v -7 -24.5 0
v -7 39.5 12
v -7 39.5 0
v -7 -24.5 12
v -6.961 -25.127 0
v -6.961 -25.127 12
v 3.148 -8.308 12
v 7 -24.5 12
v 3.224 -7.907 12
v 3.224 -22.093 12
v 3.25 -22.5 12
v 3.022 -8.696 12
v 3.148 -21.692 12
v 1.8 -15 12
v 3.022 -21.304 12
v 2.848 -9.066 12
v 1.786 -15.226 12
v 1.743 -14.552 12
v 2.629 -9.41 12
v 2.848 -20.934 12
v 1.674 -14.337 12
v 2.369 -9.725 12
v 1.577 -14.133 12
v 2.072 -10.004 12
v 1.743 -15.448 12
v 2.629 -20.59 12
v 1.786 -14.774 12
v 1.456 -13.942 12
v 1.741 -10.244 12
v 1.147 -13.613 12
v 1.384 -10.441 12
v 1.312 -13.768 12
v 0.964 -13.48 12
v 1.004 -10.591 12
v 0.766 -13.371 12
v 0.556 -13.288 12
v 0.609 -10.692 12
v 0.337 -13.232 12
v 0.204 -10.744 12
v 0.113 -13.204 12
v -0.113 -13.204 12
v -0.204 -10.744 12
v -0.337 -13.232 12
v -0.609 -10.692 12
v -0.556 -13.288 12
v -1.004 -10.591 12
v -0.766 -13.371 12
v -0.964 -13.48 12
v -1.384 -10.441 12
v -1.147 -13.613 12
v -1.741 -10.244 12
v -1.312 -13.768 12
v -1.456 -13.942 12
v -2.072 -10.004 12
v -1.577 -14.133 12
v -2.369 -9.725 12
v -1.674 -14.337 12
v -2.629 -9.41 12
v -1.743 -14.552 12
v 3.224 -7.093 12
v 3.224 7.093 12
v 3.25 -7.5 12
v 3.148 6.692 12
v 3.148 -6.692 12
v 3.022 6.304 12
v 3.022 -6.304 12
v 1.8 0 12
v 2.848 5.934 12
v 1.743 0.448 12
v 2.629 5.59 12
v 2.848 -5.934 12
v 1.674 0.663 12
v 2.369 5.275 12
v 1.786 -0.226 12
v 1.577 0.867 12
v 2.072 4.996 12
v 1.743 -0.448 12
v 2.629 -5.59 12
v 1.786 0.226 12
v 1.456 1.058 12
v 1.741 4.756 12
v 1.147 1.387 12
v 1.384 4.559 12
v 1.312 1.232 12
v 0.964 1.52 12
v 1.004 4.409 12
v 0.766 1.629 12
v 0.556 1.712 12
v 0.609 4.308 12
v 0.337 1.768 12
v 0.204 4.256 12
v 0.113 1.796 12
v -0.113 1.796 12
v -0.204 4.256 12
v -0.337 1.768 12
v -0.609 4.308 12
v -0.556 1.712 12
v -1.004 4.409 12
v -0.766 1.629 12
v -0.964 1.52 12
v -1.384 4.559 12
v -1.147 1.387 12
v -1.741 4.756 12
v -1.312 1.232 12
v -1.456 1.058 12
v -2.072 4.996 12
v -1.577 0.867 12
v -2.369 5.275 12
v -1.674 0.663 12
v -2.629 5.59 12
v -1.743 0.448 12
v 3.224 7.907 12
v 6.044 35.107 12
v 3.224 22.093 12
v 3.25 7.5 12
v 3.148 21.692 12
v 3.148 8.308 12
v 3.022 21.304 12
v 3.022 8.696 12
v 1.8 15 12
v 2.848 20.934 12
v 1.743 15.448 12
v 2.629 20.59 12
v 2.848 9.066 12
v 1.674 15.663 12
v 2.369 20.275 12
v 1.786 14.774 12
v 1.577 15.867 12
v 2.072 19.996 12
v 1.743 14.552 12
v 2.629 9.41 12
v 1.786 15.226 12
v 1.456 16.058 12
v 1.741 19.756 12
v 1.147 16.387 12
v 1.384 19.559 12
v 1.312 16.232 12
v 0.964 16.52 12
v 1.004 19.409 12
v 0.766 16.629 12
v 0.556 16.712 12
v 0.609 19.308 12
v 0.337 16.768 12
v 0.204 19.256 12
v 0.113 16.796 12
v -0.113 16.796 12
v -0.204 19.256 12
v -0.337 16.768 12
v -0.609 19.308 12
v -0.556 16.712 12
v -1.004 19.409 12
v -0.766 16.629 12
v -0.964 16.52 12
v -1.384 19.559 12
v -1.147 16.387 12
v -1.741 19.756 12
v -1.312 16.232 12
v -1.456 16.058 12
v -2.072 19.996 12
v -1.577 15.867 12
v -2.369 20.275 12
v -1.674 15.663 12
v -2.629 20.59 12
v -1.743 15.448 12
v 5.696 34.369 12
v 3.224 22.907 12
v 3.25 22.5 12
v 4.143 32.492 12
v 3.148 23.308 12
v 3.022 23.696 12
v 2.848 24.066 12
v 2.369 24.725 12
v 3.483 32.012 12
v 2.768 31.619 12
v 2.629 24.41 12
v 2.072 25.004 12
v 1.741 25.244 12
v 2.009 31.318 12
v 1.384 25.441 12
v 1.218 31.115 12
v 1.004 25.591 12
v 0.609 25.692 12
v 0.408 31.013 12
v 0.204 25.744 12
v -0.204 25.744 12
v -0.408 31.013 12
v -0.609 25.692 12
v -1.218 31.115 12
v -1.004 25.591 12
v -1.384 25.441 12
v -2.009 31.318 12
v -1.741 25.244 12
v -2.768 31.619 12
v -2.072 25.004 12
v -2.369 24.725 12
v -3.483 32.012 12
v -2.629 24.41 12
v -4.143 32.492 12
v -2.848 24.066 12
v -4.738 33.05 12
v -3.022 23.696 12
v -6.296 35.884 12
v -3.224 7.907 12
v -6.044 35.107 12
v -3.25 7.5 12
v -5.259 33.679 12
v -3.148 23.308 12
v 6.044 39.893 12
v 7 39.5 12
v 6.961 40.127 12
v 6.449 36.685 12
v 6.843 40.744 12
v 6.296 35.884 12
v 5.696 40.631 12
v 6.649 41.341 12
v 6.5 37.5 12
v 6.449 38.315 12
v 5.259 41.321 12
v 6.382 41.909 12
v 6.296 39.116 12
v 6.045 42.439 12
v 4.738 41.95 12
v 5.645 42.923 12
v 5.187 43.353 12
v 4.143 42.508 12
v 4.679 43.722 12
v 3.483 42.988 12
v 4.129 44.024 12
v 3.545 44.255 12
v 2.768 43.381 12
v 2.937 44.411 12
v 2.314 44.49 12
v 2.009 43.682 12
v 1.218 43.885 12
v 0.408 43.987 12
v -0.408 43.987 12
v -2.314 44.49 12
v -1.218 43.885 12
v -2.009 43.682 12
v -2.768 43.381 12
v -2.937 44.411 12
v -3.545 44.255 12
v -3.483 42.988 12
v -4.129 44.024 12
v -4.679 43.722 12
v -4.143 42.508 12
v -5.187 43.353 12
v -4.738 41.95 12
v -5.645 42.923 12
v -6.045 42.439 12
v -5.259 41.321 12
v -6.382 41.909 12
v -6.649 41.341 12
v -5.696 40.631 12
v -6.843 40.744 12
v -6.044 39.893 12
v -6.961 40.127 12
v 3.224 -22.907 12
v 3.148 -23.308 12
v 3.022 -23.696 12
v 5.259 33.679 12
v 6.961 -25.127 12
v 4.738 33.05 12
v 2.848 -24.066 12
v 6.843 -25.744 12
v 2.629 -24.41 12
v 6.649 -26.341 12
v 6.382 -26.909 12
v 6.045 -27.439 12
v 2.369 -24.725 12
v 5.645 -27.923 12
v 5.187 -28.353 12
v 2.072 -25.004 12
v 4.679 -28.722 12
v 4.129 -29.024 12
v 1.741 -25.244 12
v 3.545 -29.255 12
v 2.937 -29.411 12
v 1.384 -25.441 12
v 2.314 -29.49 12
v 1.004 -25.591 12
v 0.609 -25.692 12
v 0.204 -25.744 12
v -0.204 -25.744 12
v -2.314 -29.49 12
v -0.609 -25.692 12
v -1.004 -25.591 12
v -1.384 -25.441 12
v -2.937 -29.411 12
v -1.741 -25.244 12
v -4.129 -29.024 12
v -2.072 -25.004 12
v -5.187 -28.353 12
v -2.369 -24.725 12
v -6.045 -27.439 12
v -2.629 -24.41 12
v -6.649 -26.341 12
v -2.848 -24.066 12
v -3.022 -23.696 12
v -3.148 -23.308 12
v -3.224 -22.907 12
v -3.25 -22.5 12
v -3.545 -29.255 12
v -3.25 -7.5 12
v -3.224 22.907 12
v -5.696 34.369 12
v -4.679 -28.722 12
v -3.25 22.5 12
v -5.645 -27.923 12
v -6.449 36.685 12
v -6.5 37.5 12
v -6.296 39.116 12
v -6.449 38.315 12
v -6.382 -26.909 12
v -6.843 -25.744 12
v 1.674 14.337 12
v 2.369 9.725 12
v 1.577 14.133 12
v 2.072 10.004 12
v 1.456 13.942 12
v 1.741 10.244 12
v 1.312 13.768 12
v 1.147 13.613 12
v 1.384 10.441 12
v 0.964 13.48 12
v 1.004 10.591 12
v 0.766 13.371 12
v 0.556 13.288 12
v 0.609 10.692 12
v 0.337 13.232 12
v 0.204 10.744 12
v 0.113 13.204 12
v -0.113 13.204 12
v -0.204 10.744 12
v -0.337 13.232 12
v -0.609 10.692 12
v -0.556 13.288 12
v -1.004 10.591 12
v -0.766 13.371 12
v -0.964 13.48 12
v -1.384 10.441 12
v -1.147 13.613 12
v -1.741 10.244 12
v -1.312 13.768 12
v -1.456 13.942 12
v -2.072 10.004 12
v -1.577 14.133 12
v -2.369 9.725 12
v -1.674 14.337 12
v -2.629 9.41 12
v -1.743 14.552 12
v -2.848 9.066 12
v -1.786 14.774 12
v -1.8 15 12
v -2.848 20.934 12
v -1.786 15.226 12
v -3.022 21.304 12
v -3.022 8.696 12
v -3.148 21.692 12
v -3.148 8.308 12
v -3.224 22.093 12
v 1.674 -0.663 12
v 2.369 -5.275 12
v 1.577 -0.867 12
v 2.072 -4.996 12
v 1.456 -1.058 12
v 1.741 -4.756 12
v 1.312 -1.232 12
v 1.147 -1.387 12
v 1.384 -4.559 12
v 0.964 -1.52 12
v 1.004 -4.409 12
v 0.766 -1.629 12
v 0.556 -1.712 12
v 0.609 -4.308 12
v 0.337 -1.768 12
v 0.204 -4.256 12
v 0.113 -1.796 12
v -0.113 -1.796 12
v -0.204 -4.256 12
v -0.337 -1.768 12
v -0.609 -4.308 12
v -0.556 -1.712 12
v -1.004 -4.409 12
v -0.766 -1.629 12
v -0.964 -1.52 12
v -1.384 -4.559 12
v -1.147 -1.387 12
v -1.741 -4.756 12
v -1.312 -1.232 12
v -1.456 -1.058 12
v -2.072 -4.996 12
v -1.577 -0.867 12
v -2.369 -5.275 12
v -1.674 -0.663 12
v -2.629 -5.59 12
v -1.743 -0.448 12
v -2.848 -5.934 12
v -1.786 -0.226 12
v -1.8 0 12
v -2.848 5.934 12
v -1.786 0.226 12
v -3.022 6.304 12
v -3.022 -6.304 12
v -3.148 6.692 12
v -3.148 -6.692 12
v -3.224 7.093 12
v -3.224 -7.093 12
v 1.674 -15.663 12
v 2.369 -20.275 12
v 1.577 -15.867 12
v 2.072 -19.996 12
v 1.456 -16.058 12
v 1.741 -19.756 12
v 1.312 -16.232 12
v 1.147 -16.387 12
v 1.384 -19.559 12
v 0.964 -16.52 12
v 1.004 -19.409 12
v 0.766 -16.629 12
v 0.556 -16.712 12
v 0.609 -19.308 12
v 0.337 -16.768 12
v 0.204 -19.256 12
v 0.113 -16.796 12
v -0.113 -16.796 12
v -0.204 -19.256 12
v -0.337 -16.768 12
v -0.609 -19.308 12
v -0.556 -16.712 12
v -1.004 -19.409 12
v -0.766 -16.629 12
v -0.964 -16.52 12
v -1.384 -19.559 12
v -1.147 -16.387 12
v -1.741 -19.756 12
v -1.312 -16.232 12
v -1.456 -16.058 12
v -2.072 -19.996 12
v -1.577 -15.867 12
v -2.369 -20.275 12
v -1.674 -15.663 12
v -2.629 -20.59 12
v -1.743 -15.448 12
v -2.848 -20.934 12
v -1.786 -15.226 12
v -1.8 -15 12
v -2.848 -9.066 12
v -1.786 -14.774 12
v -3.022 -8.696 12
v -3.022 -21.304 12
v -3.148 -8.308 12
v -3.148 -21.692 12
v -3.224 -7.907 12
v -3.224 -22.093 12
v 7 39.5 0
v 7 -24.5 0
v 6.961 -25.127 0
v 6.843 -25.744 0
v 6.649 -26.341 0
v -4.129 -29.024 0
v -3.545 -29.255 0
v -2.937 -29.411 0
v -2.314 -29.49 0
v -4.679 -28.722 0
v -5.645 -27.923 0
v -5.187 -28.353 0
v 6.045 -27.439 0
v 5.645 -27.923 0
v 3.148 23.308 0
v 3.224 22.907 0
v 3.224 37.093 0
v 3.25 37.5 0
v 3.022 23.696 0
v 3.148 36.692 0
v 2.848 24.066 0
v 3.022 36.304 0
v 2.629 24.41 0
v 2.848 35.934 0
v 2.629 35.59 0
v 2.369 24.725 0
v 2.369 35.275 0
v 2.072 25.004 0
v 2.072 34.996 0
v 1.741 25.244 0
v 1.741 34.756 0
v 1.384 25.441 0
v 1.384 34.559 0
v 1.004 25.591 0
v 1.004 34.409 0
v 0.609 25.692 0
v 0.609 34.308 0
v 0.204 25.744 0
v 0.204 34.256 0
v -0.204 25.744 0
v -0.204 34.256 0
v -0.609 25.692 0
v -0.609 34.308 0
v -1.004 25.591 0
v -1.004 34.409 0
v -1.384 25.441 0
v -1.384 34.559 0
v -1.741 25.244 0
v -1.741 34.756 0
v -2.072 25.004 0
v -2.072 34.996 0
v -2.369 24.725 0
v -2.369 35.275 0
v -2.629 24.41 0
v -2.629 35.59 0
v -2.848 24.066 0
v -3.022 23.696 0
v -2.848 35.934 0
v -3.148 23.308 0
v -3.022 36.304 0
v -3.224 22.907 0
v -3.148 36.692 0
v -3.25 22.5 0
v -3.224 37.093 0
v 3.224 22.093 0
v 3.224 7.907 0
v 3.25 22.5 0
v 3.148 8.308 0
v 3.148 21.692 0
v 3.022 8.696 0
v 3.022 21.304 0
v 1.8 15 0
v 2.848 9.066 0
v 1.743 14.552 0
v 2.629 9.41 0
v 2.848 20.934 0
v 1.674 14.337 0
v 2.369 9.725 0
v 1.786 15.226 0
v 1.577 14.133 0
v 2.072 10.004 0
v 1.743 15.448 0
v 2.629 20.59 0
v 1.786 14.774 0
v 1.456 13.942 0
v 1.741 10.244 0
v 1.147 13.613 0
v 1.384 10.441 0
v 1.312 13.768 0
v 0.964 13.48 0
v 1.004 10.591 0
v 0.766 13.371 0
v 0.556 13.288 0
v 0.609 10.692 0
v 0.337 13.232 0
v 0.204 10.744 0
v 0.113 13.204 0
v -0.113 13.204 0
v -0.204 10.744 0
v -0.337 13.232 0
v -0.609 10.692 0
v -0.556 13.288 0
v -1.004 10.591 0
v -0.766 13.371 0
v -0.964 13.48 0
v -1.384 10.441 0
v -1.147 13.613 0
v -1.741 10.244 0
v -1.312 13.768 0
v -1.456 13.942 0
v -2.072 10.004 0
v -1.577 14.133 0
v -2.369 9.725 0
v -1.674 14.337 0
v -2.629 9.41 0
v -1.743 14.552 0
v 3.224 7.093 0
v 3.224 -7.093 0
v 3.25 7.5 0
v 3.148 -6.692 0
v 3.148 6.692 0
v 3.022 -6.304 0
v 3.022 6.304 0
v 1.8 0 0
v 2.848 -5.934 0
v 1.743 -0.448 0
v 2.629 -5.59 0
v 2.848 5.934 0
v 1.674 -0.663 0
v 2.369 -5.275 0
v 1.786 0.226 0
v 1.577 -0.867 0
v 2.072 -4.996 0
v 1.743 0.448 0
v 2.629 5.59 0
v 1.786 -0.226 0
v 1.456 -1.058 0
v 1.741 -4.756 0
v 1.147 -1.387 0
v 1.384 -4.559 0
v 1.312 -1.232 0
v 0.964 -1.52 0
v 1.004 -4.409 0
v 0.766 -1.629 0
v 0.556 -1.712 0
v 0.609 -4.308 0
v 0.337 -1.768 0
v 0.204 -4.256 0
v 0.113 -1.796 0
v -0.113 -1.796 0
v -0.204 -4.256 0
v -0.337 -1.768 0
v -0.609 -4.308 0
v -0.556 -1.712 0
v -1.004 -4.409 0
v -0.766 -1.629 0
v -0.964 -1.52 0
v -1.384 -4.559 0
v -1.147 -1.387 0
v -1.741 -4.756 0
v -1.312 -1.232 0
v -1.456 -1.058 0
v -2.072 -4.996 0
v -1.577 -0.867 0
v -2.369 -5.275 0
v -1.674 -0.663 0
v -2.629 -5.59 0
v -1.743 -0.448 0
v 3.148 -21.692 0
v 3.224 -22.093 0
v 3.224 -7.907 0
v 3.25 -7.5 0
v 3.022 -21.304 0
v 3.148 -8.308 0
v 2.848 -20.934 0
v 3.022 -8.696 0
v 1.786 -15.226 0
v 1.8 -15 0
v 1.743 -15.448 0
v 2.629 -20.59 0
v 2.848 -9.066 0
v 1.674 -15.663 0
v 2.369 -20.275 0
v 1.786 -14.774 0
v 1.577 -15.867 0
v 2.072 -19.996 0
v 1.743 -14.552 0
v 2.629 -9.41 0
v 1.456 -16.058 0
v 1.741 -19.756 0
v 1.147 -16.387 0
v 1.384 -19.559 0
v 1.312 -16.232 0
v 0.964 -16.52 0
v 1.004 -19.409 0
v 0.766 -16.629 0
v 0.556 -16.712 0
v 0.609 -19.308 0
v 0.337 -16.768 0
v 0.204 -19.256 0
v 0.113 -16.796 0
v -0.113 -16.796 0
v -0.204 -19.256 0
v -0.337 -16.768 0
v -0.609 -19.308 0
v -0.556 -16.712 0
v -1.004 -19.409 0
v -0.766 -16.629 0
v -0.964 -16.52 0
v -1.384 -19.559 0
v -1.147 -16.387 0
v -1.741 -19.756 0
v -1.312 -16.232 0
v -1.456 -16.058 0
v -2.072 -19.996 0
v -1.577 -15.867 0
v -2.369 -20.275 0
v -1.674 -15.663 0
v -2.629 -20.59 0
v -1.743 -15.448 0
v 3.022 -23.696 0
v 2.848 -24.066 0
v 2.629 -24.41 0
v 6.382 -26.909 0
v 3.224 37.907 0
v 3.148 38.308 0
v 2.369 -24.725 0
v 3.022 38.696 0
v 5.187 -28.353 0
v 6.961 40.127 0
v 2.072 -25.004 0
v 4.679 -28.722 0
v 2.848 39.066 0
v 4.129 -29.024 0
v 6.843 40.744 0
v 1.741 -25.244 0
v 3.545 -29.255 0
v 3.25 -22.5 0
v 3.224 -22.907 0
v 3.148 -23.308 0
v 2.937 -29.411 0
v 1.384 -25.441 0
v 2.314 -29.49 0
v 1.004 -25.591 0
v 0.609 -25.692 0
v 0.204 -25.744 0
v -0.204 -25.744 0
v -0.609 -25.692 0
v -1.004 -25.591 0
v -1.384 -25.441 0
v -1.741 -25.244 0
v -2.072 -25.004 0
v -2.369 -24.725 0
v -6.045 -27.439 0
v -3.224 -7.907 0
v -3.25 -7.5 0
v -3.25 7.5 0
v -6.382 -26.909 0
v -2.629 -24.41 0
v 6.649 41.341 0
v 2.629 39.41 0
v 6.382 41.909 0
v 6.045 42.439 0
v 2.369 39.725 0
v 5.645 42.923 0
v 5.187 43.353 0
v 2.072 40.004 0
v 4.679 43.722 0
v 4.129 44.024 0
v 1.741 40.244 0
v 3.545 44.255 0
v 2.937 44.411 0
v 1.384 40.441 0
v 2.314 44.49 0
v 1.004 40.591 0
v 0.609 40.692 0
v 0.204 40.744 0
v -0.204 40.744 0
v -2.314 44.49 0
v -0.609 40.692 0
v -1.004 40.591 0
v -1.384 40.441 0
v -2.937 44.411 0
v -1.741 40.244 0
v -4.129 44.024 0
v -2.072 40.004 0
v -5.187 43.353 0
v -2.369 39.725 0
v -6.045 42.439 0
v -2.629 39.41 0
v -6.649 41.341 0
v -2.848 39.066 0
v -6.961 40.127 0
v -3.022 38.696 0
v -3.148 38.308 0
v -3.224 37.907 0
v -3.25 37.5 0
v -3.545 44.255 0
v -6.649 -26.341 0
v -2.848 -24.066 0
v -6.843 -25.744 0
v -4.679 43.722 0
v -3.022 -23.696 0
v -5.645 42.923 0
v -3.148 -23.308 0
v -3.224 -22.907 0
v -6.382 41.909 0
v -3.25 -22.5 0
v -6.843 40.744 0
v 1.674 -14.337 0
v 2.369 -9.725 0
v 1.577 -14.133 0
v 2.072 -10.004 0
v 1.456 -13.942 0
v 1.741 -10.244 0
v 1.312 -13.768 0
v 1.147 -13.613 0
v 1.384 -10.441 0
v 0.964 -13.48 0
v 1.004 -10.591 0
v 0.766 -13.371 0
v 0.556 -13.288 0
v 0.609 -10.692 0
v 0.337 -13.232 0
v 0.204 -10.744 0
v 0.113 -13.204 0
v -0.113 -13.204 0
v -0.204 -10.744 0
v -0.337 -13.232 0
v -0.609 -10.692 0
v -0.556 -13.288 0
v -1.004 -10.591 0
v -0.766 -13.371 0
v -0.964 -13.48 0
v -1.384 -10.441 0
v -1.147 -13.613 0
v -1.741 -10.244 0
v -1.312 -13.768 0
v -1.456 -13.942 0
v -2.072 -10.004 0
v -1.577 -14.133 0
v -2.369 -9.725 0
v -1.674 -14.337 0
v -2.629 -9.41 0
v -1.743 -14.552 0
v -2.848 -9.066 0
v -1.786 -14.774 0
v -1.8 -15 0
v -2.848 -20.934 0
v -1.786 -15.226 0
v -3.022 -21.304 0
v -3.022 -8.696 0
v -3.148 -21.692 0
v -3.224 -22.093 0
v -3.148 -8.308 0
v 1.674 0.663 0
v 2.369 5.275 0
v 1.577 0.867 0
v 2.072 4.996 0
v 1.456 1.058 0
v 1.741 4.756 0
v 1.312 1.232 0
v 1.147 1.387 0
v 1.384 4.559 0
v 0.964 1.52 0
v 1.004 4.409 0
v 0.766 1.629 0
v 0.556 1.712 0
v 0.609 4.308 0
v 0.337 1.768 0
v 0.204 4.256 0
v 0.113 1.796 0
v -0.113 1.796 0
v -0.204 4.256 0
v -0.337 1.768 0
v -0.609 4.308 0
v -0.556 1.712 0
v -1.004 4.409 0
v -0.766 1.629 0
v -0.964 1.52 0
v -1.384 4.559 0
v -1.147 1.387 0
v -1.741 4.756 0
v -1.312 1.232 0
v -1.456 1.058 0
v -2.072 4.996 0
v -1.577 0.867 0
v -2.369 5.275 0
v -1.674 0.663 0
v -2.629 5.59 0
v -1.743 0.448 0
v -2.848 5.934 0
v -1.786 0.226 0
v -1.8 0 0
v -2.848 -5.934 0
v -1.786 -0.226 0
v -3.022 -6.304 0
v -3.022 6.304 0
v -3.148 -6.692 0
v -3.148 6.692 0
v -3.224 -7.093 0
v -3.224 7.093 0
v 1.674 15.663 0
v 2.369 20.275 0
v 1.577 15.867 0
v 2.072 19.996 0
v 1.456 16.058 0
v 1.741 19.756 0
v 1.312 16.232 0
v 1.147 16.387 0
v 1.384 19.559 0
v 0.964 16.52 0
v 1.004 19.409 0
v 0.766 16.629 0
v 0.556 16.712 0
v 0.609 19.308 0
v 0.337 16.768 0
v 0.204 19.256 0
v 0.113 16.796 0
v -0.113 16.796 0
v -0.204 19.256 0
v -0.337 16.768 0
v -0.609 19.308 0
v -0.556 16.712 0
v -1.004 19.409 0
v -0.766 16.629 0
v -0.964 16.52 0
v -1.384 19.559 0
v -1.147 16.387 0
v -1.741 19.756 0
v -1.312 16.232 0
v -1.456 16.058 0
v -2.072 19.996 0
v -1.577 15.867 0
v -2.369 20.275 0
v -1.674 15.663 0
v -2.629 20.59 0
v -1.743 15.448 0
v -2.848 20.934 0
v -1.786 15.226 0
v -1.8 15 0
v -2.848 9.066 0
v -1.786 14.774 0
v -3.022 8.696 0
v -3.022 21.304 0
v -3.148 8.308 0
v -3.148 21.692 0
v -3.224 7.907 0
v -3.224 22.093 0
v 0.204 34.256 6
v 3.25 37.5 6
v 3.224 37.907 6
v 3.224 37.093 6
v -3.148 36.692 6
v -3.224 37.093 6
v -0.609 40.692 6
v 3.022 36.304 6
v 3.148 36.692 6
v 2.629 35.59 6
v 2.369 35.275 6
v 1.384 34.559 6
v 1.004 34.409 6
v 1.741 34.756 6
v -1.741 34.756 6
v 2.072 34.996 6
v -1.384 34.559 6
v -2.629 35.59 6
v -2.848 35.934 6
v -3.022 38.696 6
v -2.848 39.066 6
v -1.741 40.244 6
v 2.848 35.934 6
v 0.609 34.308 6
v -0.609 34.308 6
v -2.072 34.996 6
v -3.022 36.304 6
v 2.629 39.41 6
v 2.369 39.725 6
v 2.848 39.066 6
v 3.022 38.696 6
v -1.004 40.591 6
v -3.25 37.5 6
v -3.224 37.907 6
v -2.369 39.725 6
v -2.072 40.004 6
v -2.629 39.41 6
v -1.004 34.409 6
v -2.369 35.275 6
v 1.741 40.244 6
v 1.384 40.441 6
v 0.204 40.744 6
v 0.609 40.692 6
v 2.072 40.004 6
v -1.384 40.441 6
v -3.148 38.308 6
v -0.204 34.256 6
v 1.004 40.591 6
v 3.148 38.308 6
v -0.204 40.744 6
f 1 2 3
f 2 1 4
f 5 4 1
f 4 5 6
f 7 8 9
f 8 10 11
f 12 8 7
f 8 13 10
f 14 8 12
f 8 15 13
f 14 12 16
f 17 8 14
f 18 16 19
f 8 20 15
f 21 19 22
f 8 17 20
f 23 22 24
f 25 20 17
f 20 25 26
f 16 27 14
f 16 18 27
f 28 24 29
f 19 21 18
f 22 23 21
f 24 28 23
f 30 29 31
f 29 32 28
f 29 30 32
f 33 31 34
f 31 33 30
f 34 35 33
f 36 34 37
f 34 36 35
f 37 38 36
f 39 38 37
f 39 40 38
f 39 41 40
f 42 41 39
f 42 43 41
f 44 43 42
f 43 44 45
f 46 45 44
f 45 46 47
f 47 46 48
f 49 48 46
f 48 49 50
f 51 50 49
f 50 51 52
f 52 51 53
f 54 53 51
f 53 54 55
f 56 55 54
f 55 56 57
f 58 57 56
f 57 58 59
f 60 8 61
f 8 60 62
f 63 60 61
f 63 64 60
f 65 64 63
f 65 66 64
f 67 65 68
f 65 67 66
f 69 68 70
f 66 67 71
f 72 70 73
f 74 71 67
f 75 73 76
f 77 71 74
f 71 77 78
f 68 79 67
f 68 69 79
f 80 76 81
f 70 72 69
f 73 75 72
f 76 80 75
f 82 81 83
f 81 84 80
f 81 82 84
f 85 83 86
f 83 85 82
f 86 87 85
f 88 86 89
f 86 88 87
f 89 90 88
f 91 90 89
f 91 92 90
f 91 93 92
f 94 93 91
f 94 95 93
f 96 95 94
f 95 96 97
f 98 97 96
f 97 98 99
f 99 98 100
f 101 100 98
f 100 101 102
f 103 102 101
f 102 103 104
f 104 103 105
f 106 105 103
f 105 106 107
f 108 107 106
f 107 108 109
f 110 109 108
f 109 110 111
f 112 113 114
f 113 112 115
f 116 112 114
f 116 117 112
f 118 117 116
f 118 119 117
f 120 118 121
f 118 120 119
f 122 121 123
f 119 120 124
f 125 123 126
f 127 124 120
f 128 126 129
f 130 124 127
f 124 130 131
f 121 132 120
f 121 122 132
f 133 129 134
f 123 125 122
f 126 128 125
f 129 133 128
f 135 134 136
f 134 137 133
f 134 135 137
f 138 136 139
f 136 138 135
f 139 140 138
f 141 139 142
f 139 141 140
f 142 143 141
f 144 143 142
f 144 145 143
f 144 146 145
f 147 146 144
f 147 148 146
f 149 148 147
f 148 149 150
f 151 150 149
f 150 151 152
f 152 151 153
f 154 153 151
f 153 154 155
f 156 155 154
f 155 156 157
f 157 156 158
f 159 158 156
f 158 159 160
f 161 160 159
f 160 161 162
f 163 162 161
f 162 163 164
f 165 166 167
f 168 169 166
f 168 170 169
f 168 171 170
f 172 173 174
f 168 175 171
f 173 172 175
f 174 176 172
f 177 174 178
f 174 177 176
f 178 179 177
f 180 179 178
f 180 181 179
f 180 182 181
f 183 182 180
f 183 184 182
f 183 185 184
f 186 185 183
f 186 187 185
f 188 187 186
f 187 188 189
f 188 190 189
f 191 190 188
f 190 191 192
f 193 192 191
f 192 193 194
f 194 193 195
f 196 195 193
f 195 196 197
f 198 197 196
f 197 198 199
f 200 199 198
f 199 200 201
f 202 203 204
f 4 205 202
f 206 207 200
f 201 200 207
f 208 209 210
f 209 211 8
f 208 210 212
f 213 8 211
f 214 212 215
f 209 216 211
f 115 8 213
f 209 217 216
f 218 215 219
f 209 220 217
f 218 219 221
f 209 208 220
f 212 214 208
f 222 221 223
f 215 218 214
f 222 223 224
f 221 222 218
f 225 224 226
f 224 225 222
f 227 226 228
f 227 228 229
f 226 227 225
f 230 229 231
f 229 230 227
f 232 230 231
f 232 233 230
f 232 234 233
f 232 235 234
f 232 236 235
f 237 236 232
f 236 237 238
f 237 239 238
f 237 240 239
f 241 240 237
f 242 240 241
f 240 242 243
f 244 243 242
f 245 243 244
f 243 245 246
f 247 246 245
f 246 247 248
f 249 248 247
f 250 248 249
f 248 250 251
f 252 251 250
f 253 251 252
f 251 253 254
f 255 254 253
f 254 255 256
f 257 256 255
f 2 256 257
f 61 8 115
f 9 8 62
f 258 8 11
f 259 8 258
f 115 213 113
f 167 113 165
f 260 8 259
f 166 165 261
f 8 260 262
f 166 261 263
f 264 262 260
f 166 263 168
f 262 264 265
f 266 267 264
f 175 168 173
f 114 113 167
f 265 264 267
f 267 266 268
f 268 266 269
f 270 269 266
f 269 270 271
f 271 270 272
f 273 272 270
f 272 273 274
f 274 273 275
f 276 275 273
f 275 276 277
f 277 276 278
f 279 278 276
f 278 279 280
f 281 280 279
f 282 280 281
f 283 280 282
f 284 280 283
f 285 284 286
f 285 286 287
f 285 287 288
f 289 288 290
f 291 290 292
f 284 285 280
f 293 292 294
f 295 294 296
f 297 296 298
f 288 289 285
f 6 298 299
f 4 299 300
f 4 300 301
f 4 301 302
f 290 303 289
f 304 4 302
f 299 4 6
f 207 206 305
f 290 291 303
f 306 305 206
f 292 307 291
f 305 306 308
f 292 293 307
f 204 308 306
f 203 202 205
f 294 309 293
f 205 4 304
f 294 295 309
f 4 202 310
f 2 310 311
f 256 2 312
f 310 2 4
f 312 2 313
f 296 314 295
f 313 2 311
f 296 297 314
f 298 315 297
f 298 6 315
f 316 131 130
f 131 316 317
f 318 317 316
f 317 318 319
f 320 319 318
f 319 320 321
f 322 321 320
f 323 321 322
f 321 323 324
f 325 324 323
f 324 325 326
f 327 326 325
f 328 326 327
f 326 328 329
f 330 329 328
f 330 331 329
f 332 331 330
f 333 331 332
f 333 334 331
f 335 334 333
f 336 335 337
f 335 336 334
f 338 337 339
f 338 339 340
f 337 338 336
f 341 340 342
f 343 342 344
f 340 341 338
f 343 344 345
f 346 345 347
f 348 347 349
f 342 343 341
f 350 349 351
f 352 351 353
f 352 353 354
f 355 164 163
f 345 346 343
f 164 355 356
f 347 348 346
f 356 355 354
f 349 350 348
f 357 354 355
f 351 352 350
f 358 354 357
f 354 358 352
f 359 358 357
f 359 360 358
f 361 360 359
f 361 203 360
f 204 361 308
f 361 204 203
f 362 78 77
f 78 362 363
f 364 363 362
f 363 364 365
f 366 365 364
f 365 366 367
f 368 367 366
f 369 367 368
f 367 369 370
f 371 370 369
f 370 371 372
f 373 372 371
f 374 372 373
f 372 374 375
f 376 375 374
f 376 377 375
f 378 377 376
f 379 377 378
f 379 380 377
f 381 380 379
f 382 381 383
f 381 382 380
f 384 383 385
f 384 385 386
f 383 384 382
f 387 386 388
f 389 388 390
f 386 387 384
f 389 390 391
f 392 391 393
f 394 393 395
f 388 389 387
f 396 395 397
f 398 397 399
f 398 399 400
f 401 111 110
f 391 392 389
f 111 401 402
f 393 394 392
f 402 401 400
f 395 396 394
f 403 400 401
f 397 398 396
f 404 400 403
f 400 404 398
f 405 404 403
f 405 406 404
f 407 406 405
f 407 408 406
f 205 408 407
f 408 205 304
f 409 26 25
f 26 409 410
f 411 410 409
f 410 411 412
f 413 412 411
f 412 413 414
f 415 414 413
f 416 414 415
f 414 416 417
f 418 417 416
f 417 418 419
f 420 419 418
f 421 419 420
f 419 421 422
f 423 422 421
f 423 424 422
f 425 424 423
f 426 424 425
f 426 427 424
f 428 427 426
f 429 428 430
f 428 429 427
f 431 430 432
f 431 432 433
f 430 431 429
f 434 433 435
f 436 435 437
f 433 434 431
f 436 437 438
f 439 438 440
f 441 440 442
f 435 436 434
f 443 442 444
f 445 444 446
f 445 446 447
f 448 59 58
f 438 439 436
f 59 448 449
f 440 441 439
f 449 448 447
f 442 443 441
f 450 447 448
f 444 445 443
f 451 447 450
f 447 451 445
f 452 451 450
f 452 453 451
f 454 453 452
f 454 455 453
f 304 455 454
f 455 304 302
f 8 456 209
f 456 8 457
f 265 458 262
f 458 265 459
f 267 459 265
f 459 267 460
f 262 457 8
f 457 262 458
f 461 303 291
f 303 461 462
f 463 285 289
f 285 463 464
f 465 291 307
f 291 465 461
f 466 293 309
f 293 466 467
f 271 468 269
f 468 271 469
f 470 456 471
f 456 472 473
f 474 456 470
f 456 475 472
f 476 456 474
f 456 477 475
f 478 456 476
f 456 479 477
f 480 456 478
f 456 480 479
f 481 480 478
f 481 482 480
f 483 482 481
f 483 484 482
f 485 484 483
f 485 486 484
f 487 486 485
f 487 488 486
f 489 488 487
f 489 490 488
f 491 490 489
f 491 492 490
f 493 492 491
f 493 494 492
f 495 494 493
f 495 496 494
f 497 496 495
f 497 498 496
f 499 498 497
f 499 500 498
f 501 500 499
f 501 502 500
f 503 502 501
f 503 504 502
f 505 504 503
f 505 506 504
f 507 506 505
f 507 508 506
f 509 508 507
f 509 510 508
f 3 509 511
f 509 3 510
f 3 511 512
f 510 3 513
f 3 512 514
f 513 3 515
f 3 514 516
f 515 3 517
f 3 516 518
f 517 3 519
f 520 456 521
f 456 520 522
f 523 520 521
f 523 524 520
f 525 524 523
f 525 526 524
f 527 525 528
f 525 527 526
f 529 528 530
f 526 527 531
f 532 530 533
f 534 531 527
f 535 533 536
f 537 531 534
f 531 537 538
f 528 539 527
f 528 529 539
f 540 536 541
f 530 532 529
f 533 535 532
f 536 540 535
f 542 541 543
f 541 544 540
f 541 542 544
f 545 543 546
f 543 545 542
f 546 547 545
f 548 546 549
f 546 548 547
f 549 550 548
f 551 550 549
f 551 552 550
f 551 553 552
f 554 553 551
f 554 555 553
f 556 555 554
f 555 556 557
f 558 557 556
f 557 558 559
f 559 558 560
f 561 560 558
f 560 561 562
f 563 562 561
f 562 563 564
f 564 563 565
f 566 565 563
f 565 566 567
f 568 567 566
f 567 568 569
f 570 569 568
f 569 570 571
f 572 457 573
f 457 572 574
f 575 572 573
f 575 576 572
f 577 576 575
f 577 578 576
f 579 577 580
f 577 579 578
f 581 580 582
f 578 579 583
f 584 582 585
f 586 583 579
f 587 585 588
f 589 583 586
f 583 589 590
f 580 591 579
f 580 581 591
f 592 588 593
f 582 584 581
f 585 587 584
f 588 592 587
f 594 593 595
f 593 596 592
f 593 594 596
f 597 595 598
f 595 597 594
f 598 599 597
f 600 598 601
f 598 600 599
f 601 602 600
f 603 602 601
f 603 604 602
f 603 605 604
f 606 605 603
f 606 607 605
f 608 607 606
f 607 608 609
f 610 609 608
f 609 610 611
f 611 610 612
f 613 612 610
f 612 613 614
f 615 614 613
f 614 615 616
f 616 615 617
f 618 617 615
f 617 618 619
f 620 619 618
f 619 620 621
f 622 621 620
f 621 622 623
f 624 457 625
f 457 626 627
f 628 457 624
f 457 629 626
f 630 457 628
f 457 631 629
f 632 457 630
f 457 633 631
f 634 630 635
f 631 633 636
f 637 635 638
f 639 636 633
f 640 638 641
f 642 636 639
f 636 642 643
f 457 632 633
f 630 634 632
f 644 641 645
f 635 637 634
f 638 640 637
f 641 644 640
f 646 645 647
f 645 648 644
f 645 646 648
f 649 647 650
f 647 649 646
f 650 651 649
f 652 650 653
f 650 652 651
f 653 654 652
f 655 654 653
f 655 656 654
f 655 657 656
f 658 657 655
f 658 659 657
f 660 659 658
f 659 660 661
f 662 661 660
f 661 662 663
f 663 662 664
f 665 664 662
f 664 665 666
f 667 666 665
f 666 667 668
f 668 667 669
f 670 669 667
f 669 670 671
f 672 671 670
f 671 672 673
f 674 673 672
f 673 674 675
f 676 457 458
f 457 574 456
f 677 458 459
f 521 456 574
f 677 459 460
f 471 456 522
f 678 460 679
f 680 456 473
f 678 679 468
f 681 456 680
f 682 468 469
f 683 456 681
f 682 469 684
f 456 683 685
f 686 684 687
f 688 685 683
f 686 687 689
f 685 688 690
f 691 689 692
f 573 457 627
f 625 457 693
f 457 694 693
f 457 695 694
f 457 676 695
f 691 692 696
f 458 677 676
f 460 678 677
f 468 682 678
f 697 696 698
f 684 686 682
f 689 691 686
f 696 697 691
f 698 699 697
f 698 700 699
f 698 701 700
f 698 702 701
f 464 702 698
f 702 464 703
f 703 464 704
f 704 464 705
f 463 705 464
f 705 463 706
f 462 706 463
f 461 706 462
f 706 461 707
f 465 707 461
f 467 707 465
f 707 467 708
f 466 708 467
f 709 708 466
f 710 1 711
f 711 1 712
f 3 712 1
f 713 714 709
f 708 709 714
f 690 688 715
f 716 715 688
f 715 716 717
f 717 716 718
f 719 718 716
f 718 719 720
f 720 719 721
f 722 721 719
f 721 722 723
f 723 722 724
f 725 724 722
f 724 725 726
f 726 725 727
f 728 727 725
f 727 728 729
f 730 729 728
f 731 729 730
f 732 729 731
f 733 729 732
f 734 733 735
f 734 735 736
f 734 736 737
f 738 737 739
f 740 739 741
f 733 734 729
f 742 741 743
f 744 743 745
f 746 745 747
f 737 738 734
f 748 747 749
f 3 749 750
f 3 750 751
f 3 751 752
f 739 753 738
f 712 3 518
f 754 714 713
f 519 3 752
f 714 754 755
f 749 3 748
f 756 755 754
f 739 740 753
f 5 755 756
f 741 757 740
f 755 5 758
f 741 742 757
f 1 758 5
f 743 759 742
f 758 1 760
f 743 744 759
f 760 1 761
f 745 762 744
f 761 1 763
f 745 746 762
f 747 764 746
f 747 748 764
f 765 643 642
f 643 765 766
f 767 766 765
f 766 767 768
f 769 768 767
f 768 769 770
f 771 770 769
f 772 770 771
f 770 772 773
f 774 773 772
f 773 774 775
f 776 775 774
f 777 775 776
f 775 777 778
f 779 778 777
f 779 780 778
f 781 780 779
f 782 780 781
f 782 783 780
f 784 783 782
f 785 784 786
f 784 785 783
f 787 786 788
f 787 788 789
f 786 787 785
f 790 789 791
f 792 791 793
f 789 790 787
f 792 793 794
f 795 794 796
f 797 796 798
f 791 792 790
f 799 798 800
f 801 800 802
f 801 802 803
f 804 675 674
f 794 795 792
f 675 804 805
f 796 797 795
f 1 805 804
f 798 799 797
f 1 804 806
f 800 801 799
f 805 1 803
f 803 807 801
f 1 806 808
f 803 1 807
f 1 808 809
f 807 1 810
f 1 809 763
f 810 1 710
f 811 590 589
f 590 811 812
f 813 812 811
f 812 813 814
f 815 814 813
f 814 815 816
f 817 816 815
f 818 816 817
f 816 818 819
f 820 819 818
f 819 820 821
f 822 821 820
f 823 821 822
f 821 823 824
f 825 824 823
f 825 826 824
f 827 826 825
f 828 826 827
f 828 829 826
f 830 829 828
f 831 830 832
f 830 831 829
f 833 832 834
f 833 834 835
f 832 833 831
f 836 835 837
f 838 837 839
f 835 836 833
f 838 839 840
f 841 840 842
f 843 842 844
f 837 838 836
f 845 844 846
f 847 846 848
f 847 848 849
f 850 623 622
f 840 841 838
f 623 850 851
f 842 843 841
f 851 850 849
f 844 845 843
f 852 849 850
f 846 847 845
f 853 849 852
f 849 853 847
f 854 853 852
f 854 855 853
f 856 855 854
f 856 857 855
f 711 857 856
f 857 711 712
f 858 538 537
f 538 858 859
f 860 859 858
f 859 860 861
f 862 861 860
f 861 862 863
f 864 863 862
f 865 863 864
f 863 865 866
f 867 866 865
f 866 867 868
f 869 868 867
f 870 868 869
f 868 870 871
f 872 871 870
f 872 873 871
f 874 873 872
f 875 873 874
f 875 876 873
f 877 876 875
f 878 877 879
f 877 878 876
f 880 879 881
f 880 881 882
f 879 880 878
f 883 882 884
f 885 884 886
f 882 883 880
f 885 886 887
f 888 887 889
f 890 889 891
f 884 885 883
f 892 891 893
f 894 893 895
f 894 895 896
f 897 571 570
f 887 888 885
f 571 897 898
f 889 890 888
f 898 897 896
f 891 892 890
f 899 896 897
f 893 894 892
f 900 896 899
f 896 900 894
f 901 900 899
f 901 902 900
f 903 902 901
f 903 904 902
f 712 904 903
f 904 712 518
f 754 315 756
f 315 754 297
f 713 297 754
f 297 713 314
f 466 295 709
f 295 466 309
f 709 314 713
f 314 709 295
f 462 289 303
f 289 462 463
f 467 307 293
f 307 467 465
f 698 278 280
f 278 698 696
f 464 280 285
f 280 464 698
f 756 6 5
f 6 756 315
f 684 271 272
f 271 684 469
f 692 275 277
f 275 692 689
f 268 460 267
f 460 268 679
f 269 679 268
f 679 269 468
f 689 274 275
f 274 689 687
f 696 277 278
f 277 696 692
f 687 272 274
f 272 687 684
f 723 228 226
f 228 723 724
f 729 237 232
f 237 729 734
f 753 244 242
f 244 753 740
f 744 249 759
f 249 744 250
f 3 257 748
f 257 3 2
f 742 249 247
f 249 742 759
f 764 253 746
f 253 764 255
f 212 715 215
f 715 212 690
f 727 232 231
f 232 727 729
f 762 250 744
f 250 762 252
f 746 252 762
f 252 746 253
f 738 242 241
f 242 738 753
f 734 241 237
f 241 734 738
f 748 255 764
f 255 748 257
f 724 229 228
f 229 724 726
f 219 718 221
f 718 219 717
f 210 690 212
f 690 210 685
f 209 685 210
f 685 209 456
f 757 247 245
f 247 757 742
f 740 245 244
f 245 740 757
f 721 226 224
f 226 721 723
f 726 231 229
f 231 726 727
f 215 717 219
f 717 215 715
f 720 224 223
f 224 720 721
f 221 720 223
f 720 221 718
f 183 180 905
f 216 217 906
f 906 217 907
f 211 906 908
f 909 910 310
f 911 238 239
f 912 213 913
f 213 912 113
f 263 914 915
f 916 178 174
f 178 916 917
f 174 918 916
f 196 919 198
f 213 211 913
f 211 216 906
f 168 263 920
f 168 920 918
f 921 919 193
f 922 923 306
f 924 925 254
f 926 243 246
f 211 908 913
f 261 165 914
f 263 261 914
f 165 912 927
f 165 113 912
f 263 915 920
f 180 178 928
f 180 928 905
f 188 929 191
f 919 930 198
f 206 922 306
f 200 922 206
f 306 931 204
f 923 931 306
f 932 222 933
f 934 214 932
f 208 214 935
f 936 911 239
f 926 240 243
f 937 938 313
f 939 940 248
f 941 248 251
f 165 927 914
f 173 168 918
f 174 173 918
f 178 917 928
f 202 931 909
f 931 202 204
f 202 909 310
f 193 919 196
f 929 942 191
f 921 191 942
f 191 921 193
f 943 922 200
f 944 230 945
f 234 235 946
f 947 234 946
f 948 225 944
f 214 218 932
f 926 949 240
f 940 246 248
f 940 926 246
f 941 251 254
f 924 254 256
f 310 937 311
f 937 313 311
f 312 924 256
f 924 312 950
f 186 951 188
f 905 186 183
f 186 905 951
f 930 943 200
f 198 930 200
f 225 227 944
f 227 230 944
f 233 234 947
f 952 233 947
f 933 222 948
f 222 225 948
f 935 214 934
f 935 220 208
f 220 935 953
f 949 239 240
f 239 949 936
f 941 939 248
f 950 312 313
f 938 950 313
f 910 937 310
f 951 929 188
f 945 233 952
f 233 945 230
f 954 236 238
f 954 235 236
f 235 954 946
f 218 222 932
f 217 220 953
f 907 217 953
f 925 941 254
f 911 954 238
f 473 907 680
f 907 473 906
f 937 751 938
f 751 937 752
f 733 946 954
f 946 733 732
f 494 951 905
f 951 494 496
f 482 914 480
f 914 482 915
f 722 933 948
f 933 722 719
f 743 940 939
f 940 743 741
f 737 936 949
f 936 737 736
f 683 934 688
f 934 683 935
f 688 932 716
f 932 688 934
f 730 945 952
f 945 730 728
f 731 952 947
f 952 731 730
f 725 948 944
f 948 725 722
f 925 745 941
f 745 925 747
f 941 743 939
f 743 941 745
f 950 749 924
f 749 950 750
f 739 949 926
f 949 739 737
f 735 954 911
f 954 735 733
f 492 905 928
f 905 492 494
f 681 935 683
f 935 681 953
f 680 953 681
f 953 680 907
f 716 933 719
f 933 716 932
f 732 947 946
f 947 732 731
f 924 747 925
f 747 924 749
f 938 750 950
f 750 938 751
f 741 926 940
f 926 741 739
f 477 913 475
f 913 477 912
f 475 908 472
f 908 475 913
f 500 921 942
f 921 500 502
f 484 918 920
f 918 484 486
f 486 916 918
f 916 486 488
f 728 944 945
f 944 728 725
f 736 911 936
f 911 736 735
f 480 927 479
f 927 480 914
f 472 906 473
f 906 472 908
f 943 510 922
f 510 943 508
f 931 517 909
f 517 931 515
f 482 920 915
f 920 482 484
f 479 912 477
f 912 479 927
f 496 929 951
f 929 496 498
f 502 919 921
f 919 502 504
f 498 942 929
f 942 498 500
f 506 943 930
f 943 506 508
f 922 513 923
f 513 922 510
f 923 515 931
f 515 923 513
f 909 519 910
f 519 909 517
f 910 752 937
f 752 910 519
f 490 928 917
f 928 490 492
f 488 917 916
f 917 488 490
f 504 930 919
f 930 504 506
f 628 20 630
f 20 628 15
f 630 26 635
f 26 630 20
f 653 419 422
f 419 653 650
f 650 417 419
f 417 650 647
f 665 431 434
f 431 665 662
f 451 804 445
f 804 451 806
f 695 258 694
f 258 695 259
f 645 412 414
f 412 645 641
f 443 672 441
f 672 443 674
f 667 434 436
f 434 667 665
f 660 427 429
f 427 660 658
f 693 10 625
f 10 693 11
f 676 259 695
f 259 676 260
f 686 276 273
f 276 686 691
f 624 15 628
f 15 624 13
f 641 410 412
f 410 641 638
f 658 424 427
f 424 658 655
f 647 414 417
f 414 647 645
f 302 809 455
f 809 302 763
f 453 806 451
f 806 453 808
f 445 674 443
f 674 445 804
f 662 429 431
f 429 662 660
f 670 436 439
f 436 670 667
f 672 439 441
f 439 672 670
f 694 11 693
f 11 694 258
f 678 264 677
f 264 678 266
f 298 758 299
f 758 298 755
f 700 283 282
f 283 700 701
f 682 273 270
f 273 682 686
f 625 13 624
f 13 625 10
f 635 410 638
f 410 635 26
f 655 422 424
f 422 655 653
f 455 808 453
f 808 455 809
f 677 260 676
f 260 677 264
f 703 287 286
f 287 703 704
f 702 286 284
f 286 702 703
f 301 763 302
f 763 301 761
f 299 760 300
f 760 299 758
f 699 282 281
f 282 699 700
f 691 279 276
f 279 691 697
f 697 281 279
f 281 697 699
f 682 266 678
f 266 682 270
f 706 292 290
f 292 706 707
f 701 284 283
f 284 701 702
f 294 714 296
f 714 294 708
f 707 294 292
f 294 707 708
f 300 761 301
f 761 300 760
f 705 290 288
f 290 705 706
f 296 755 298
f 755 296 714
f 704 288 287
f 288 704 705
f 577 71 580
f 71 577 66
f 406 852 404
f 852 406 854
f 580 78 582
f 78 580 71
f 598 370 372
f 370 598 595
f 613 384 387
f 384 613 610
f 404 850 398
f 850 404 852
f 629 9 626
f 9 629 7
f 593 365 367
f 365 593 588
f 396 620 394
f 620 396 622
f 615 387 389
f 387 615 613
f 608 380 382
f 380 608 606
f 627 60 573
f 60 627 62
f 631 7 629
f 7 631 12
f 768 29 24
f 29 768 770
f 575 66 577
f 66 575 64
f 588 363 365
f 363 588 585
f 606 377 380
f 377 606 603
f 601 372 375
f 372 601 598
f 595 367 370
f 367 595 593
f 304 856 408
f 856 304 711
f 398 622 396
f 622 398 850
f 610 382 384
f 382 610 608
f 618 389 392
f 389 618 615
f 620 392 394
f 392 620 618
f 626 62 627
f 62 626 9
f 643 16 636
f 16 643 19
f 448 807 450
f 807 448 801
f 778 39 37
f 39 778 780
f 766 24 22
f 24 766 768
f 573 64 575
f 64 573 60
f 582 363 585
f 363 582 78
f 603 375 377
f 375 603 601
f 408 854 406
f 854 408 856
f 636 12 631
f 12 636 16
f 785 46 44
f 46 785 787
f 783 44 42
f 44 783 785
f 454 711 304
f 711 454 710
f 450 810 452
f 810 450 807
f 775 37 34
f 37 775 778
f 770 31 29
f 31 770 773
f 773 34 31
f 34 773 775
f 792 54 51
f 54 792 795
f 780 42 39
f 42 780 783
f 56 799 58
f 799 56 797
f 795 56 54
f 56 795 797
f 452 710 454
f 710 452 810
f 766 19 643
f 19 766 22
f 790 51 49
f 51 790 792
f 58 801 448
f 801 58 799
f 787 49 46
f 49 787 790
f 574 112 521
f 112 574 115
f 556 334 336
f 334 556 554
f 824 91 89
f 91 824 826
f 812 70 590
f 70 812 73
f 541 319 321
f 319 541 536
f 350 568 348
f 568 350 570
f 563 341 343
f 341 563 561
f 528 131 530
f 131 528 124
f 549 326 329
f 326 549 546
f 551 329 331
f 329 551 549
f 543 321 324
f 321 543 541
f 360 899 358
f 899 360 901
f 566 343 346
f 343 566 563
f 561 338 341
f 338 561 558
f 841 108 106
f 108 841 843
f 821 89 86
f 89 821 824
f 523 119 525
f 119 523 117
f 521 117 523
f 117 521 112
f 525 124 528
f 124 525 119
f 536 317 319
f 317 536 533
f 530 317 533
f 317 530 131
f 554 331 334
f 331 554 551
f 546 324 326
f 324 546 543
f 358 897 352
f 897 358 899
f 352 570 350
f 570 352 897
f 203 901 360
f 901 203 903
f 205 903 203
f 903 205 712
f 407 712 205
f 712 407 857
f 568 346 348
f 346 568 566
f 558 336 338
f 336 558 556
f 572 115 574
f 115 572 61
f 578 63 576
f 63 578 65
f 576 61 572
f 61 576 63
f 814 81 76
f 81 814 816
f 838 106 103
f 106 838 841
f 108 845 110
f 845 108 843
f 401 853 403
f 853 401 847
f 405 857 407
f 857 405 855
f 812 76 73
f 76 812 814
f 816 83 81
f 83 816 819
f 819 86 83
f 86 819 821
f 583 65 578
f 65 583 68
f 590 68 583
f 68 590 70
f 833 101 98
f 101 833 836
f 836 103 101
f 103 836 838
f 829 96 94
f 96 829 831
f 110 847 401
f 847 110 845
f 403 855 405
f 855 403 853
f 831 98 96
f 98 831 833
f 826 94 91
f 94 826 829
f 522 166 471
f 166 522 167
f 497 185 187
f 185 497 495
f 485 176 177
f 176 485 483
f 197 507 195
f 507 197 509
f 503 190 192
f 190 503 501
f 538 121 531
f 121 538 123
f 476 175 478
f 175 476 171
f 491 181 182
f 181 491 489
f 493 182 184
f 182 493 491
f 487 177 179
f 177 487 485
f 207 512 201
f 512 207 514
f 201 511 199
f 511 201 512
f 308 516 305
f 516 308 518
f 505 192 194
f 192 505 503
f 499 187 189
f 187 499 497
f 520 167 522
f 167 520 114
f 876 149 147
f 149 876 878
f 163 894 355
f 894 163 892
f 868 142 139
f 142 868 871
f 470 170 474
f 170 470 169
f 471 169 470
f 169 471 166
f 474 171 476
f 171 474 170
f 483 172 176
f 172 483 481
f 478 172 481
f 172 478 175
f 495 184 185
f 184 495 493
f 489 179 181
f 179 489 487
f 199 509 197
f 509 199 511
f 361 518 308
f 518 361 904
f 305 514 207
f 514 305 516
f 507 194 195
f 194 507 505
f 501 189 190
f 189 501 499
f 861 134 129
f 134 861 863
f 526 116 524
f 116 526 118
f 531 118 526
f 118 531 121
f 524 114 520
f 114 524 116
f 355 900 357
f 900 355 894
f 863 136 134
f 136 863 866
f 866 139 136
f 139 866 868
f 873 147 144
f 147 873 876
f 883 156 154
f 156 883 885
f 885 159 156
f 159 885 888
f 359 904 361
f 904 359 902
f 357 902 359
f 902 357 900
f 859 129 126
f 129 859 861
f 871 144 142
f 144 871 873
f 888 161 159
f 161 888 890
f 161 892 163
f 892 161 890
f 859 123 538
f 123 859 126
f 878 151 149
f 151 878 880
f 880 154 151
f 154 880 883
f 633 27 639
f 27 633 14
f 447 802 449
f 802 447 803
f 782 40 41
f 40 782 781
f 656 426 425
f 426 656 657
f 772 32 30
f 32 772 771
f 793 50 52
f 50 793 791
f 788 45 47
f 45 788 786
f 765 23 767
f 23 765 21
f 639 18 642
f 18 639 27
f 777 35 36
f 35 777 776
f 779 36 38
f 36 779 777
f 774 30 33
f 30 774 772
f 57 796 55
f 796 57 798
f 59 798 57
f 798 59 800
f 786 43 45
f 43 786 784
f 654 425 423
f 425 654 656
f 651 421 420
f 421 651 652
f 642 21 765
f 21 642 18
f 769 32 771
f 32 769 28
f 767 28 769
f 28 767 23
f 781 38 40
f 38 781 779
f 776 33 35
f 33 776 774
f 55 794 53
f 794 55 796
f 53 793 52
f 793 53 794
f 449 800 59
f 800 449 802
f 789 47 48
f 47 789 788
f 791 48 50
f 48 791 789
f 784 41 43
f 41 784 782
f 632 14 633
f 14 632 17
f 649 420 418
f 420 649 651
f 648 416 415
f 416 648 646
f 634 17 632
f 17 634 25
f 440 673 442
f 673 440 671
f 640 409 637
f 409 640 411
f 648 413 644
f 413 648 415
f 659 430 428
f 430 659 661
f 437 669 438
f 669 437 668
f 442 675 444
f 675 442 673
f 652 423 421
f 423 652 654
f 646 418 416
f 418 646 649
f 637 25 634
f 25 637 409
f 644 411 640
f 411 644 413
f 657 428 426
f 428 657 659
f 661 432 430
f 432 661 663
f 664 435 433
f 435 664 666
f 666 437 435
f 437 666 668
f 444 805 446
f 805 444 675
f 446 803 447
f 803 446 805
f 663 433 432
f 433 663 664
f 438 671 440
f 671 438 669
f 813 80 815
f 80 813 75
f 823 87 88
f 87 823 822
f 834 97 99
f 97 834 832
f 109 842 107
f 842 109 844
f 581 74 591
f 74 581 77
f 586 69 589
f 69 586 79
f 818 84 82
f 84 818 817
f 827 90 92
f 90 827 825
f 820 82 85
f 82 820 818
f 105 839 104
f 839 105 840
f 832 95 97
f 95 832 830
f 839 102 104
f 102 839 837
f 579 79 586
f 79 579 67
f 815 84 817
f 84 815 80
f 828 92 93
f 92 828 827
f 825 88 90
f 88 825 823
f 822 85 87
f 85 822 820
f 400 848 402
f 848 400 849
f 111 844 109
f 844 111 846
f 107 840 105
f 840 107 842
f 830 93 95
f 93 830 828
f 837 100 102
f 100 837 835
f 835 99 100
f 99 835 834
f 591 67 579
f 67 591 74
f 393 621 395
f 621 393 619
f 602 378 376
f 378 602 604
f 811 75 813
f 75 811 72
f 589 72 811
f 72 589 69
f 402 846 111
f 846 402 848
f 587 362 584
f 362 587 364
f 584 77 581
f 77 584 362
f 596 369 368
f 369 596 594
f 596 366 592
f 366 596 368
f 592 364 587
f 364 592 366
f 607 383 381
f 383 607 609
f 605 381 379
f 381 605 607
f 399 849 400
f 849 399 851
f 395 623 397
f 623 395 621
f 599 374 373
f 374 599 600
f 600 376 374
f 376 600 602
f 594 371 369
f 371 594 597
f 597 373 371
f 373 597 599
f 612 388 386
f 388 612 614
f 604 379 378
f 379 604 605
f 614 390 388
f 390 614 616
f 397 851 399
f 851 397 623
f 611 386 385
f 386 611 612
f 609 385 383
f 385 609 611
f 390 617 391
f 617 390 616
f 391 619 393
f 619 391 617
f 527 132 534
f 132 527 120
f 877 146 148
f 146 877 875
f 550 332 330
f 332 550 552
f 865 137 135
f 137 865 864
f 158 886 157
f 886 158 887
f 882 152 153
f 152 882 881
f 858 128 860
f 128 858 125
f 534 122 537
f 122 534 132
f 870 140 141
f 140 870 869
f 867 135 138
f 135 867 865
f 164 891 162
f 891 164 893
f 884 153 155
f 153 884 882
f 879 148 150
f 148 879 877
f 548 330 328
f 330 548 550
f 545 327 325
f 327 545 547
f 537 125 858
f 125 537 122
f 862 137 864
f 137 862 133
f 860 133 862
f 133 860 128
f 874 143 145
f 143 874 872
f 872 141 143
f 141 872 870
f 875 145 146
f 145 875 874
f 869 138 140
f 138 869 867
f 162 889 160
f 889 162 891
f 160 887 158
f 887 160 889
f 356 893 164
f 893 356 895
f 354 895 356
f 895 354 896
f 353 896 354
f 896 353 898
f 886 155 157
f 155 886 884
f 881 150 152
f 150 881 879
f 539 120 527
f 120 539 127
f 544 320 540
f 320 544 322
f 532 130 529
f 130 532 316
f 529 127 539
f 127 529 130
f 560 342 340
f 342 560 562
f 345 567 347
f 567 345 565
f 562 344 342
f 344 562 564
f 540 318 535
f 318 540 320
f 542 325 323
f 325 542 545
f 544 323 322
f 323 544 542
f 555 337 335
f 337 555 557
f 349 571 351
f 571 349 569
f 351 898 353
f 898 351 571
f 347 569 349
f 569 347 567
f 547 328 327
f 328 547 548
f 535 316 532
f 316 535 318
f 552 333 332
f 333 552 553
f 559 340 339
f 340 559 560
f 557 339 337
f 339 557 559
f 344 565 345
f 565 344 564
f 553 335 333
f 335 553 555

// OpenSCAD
$fn = 50;


difference() {
	union() {
		hull() {
			translate(v = [-2.0000000000, 24.5000000000, 0]) {
				cylinder(h = 12, r = 5);
			}
			translate(v = [2.0000000000, 24.5000000000, 0]) {
				cylinder(h = 12, r = 5);
			}
			translate(v = [-2.0000000000, -24.5000000000, 0]) {
				cylinder(h = 12, r = 5);
			}
			translate(v = [2.0000000000, -24.5000000000, 0]) {
				cylinder(h = 12, r = 5);
			}
		}
		translate(v = [0.0000000000, 30.0000000000, 0]) {
			hull() {
				translate(v = [-2.0000000000, 9.5000000000, 0]) {
					cylinder(h = 12, r = 5);
				}
				translate(v = [2.0000000000, 9.5000000000, 0]) {
					cylinder(h = 12, r = 5);
				}
				translate(v = [-2.0000000000, -9.5000000000, 0]) {
					cylinder(h = 12, r = 5);
				}
				translate(v = [2.0000000000, -9.5000000000, 0]) {
					cylinder(h = 12, r = 5);
				}
			}
		}
		translate(v = [0.0000000000, 30.0000000000, 0]) {
			hull() {
				translate(v = [-2.0000000000, 9.5000000000, 0]) {
					cylinder(h = 12, r = 5);
				}
				translate(v = [2.0000000000, 9.5000000000, 0]) {
					cylinder(h = 12, r = 5);
				}
				translate(v = [-2.0000000000, -9.5000000000, 0]) {
					cylinder(h = 12, r = 5);
				}
				translate(v = [2.0000000000, -9.5000000000, 0]) {
					cylinder(h = 12, r = 5);
				}
			}
		}
	}
	union() {
		translate(v = [0.0000000000, 37.5000000000, 12]) {
			rotate(a = [0, 0, 0]) {
				difference() {
					union() {
						#translate(v = [0, 0, -12.0000000000]) {
							cylinder(h = 12, r = 2.2500000000);
						}
						#translate(v = [0, 0, -6]) {
							cylinder(h = 6, r1 = 3.2500000000, r2 = 6.5000000000);
						}
						#translate(v = [0, 0, -12.0000000000]) {
							cylinder(h = 12, r = 3.2500000000);
						}
						#translate(v = [0, 0, -12.0000000000]) {
							cylinder(h = 12, r = 2.2500000000);
						}
					}
					union();
				}
			}
		}
		translate(v = [0.0000000000, 37.5000000000, 12]) {
			rotate(a = [0, 0, 0]) {
				difference() {
					union() {
						#translate(v = [0, 0, -12.0000000000]) {
							cylinder(h = 12, r = 2.2500000000);
						}
						#translate(v = [0, 0, -6]) {
							cylinder(h = 6, r1 = 3.2500000000, r2 = 6.5000000000);
						}
						#translate(v = [0, 0, -12.0000000000]) {
							cylinder(h = 12, r = 3.2500000000);
						}
						#translate(v = [0, 0, -12.0000000000]) {
							cylinder(h = 12, r = 2.2500000000);
						}
					}
					union();
				}
			}
		}
		translate(v = [0.0000000000, -22.5000000000, 0]) {
			translate(v = [0, 0, -100]) {
				cylinder(h = 200, r = 3.2500000000);
			}
		}
		translate(v = [0.0000000000, -7.5000000000, 0]) {
			translate(v = [0, 0, -100]) {
				cylinder(h = 200, r = 3.2500000000);
			}
		}
		translate(v = [0.0000000000, 7.5000000000, 0]) {
			translate(v = [0, 0, -100]) {
				cylinder(h = 200, r = 3.2500000000);
			}
		}
		translate(v = [0.0000000000, 22.5000000000, 0]) {
			translate(v = [0, 0, -100]) {
				cylinder(h = 200, r = 3.2500000000);
			}
		}
		translate(v = [0.0000000000, -22.5000000000, 0]) {
			translate(v = [0, 0, -100]) {
				cylinder(h = 200, r = 1.8000000000);
			}
		}
		translate(v = [0.0000000000, -15.0000000000, 0]) {
			translate(v = [0, 0, -100]) {
				cylinder(h = 200, r = 1.8000000000);
			}
		}
		translate(v = [0.0000000000, -7.5000000000, 0]) {
			translate(v = [0, 0, -100]) {
				cylinder(h = 200, r = 1.8000000000);
			}
		}
		translate(v = [0, 0, -100]) {
			cylinder(h = 200, r = 1.8000000000);
		}
		translate(v = [0.0000000000, 7.5000000000, 0]) {
			translate(v = [0, 0, -100]) {
				cylinder(h = 200, r = 1.8000000000);
			}
		}
		translate(v = [0.0000000000, 15.0000000000, 0]) {
			translate(v = [0, 0, -100]) {
				cylinder(h = 200, r = 1.8000000000);
			}
		}
		translate(v = [0.0000000000, 22.5000000000, 0]) {
			translate(v = [0, 0, -100]) {
				cylinder(h = 200, r = 1.8000000000);
			}
		}
	}
}
